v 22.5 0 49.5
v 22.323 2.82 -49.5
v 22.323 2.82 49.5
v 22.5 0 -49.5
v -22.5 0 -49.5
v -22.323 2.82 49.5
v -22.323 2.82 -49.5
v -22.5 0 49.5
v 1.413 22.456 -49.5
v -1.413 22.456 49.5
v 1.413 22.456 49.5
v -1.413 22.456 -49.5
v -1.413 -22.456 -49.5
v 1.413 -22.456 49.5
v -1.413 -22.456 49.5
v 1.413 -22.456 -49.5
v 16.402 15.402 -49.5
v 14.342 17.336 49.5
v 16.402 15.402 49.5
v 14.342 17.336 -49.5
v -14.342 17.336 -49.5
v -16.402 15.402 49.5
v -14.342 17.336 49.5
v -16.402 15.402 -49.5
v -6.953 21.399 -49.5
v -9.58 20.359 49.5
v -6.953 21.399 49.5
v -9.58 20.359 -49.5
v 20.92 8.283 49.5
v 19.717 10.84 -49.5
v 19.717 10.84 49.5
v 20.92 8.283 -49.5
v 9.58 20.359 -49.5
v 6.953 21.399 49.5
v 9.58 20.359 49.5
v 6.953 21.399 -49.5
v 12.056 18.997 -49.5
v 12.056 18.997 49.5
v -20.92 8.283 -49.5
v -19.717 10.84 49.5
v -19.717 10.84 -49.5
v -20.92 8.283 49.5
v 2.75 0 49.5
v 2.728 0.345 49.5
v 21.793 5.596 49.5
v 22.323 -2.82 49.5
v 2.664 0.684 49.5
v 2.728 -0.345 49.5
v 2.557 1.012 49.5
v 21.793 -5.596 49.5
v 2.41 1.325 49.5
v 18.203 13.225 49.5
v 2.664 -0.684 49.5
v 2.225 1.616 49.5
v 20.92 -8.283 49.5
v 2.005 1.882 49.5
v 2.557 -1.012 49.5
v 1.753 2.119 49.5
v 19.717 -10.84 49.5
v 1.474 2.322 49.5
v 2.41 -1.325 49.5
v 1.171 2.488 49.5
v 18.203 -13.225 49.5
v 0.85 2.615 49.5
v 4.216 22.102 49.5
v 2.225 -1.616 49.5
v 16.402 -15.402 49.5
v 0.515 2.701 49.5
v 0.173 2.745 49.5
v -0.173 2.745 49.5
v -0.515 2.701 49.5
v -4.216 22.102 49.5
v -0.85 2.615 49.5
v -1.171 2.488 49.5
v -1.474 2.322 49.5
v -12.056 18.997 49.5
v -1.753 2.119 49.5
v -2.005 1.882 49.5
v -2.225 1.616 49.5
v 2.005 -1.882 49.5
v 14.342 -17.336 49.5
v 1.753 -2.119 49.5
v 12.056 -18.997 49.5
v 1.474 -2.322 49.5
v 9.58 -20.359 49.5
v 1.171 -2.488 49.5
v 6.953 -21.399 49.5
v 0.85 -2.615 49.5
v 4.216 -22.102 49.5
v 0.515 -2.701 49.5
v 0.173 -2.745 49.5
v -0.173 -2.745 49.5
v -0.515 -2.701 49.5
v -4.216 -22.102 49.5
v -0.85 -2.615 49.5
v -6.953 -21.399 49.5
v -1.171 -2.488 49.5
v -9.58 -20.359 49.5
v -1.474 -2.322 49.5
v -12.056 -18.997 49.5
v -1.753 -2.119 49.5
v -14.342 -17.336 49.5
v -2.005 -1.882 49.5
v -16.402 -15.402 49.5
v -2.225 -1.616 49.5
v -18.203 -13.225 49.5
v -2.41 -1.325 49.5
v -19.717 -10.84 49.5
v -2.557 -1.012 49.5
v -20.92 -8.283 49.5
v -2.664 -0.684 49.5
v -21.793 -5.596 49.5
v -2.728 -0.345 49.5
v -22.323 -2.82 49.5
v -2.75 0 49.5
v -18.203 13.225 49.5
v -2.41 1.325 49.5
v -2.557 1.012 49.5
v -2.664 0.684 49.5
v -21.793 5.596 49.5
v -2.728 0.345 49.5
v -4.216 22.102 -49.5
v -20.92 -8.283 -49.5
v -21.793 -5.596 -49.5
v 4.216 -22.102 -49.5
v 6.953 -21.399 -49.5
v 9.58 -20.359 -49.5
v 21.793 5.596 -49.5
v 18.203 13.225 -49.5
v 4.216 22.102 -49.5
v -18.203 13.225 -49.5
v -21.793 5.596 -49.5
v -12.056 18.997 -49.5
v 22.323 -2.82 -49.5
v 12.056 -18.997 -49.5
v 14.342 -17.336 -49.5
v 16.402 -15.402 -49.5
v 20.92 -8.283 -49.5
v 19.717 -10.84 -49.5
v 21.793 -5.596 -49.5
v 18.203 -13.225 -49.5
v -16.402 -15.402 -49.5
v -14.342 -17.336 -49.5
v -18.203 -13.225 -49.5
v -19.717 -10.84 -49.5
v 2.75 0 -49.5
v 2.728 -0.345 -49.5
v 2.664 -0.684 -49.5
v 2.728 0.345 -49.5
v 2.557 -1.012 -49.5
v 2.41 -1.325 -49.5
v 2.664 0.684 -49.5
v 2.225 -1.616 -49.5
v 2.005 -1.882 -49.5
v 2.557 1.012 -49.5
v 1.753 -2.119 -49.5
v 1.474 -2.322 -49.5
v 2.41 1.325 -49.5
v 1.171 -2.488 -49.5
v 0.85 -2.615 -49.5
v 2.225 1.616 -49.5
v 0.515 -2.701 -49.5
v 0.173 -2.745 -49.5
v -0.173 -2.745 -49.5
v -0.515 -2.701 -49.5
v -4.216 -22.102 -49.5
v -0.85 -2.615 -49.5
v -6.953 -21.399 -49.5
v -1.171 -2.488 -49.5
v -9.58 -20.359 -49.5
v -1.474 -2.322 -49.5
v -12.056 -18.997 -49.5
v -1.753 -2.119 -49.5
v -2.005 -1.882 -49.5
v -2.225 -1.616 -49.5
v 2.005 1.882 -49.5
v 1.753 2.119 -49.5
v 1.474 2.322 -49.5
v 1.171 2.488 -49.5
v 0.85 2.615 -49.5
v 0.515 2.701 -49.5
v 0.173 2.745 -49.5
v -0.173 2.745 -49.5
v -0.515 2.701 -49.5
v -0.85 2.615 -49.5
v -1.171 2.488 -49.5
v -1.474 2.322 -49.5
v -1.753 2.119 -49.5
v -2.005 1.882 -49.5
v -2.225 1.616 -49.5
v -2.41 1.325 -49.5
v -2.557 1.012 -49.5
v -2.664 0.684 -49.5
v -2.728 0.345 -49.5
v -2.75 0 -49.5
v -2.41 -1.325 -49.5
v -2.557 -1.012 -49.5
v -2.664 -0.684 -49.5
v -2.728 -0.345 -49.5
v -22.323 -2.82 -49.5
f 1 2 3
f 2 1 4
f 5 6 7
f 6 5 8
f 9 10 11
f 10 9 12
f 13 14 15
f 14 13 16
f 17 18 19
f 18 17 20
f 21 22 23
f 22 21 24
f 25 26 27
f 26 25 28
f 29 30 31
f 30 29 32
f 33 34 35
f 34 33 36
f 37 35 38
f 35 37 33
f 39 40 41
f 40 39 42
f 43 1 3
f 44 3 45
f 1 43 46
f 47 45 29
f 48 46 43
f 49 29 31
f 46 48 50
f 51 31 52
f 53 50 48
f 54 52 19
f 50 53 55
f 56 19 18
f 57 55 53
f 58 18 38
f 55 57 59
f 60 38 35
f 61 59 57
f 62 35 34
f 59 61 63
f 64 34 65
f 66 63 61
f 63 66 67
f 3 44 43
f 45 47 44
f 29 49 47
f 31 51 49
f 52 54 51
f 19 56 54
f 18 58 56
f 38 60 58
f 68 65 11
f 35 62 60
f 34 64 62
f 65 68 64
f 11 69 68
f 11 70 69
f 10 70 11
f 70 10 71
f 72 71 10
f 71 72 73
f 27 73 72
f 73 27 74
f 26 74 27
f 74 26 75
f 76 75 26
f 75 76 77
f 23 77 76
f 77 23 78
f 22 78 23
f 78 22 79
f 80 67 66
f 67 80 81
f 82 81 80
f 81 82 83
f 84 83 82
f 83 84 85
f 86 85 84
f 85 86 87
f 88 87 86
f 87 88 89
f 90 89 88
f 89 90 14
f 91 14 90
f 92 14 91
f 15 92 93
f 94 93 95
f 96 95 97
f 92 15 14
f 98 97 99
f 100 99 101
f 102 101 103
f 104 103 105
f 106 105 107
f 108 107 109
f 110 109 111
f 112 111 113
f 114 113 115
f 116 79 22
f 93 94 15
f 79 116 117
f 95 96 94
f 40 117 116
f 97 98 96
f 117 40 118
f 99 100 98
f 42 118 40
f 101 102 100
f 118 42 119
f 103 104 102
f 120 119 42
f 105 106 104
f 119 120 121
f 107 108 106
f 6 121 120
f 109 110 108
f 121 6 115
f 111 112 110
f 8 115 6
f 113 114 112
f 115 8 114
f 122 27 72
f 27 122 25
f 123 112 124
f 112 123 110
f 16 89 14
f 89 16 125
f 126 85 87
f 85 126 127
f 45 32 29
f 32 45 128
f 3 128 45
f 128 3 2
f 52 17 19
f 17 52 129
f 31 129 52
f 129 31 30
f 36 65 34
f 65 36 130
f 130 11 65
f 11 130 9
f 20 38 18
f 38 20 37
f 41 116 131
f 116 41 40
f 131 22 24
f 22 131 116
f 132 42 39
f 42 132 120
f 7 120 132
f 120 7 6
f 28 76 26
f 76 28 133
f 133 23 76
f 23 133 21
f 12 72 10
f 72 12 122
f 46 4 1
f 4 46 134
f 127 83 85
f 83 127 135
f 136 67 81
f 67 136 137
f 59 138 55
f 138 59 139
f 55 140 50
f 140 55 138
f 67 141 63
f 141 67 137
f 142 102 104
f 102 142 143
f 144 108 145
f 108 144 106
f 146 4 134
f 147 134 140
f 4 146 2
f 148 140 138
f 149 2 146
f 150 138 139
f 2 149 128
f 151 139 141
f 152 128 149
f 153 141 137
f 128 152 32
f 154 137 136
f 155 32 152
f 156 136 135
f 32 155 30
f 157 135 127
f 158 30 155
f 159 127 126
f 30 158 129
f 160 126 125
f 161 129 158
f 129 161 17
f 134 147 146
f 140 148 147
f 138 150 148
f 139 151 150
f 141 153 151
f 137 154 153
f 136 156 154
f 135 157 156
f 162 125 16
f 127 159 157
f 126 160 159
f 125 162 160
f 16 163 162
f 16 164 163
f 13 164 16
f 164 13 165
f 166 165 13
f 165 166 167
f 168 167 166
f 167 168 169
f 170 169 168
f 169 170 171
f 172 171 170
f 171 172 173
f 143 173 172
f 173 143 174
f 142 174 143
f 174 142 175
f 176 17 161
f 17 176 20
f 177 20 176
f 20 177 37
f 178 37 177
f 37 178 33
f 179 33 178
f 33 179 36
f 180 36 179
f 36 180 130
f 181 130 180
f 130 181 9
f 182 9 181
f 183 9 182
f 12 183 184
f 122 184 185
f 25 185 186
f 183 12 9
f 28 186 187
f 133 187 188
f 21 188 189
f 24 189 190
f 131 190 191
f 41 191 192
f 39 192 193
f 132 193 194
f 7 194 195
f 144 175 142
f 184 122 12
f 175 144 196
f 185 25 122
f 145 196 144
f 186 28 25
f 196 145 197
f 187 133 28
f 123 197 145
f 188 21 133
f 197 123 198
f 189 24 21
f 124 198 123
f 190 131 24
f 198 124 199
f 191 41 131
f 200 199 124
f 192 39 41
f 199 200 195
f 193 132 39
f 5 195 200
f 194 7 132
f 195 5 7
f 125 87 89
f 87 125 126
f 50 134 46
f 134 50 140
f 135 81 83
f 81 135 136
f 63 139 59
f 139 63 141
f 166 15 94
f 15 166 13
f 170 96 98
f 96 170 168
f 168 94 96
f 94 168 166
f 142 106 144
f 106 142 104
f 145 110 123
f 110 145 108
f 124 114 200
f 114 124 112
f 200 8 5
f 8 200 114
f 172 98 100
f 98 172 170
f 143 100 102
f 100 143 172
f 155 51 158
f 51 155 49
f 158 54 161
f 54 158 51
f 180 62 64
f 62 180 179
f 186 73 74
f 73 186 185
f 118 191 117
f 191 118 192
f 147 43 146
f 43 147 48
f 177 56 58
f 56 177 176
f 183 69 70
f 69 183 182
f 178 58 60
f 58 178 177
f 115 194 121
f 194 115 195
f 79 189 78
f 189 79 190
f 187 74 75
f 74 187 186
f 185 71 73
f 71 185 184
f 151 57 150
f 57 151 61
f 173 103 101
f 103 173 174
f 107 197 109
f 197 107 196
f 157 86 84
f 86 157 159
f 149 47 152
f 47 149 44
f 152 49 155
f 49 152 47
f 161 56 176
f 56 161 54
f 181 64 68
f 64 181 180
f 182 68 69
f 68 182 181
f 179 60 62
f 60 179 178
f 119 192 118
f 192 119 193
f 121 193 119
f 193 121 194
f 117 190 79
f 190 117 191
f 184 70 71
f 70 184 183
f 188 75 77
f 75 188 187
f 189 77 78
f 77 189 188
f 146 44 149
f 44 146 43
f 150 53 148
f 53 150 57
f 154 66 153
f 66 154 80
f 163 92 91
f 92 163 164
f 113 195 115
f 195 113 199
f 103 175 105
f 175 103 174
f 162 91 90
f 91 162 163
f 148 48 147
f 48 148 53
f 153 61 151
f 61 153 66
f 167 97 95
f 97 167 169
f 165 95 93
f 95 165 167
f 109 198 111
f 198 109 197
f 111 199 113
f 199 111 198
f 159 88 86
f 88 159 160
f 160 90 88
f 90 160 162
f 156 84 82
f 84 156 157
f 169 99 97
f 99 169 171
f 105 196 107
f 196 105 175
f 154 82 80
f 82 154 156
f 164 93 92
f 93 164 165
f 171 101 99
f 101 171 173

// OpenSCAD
$fn = 50;


difference() {
	union() {
		translate(v = [0, 0, -49.5000000000]) {
			cylinder(h = 99, r = 22.5000000000);
		}
	}
	union() {
		translate(v = [0, 0, -100.0000000000]) {
			cylinder(h = 200, r = 2.7500000000);
		}
	}
}
